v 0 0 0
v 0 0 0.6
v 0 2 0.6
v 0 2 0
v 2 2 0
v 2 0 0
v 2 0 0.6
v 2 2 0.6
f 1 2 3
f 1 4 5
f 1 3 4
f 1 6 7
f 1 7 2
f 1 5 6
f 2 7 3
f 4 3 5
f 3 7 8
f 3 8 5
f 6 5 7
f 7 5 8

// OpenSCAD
/* Warning, this is a very basic generator with a lot of approximation 
input data : [UQFN, MJA, 2x2x0.6mm, 16, , A, C04-01049A]
generated by com.zoubworld.electronics.cad.model3d.Basic
Date : Sun Feb 15 10:50:49 CET 2026
*/

//body
color("black")
translate([0,0,0])
cube([2.0,2.0,0.6], center=false);
